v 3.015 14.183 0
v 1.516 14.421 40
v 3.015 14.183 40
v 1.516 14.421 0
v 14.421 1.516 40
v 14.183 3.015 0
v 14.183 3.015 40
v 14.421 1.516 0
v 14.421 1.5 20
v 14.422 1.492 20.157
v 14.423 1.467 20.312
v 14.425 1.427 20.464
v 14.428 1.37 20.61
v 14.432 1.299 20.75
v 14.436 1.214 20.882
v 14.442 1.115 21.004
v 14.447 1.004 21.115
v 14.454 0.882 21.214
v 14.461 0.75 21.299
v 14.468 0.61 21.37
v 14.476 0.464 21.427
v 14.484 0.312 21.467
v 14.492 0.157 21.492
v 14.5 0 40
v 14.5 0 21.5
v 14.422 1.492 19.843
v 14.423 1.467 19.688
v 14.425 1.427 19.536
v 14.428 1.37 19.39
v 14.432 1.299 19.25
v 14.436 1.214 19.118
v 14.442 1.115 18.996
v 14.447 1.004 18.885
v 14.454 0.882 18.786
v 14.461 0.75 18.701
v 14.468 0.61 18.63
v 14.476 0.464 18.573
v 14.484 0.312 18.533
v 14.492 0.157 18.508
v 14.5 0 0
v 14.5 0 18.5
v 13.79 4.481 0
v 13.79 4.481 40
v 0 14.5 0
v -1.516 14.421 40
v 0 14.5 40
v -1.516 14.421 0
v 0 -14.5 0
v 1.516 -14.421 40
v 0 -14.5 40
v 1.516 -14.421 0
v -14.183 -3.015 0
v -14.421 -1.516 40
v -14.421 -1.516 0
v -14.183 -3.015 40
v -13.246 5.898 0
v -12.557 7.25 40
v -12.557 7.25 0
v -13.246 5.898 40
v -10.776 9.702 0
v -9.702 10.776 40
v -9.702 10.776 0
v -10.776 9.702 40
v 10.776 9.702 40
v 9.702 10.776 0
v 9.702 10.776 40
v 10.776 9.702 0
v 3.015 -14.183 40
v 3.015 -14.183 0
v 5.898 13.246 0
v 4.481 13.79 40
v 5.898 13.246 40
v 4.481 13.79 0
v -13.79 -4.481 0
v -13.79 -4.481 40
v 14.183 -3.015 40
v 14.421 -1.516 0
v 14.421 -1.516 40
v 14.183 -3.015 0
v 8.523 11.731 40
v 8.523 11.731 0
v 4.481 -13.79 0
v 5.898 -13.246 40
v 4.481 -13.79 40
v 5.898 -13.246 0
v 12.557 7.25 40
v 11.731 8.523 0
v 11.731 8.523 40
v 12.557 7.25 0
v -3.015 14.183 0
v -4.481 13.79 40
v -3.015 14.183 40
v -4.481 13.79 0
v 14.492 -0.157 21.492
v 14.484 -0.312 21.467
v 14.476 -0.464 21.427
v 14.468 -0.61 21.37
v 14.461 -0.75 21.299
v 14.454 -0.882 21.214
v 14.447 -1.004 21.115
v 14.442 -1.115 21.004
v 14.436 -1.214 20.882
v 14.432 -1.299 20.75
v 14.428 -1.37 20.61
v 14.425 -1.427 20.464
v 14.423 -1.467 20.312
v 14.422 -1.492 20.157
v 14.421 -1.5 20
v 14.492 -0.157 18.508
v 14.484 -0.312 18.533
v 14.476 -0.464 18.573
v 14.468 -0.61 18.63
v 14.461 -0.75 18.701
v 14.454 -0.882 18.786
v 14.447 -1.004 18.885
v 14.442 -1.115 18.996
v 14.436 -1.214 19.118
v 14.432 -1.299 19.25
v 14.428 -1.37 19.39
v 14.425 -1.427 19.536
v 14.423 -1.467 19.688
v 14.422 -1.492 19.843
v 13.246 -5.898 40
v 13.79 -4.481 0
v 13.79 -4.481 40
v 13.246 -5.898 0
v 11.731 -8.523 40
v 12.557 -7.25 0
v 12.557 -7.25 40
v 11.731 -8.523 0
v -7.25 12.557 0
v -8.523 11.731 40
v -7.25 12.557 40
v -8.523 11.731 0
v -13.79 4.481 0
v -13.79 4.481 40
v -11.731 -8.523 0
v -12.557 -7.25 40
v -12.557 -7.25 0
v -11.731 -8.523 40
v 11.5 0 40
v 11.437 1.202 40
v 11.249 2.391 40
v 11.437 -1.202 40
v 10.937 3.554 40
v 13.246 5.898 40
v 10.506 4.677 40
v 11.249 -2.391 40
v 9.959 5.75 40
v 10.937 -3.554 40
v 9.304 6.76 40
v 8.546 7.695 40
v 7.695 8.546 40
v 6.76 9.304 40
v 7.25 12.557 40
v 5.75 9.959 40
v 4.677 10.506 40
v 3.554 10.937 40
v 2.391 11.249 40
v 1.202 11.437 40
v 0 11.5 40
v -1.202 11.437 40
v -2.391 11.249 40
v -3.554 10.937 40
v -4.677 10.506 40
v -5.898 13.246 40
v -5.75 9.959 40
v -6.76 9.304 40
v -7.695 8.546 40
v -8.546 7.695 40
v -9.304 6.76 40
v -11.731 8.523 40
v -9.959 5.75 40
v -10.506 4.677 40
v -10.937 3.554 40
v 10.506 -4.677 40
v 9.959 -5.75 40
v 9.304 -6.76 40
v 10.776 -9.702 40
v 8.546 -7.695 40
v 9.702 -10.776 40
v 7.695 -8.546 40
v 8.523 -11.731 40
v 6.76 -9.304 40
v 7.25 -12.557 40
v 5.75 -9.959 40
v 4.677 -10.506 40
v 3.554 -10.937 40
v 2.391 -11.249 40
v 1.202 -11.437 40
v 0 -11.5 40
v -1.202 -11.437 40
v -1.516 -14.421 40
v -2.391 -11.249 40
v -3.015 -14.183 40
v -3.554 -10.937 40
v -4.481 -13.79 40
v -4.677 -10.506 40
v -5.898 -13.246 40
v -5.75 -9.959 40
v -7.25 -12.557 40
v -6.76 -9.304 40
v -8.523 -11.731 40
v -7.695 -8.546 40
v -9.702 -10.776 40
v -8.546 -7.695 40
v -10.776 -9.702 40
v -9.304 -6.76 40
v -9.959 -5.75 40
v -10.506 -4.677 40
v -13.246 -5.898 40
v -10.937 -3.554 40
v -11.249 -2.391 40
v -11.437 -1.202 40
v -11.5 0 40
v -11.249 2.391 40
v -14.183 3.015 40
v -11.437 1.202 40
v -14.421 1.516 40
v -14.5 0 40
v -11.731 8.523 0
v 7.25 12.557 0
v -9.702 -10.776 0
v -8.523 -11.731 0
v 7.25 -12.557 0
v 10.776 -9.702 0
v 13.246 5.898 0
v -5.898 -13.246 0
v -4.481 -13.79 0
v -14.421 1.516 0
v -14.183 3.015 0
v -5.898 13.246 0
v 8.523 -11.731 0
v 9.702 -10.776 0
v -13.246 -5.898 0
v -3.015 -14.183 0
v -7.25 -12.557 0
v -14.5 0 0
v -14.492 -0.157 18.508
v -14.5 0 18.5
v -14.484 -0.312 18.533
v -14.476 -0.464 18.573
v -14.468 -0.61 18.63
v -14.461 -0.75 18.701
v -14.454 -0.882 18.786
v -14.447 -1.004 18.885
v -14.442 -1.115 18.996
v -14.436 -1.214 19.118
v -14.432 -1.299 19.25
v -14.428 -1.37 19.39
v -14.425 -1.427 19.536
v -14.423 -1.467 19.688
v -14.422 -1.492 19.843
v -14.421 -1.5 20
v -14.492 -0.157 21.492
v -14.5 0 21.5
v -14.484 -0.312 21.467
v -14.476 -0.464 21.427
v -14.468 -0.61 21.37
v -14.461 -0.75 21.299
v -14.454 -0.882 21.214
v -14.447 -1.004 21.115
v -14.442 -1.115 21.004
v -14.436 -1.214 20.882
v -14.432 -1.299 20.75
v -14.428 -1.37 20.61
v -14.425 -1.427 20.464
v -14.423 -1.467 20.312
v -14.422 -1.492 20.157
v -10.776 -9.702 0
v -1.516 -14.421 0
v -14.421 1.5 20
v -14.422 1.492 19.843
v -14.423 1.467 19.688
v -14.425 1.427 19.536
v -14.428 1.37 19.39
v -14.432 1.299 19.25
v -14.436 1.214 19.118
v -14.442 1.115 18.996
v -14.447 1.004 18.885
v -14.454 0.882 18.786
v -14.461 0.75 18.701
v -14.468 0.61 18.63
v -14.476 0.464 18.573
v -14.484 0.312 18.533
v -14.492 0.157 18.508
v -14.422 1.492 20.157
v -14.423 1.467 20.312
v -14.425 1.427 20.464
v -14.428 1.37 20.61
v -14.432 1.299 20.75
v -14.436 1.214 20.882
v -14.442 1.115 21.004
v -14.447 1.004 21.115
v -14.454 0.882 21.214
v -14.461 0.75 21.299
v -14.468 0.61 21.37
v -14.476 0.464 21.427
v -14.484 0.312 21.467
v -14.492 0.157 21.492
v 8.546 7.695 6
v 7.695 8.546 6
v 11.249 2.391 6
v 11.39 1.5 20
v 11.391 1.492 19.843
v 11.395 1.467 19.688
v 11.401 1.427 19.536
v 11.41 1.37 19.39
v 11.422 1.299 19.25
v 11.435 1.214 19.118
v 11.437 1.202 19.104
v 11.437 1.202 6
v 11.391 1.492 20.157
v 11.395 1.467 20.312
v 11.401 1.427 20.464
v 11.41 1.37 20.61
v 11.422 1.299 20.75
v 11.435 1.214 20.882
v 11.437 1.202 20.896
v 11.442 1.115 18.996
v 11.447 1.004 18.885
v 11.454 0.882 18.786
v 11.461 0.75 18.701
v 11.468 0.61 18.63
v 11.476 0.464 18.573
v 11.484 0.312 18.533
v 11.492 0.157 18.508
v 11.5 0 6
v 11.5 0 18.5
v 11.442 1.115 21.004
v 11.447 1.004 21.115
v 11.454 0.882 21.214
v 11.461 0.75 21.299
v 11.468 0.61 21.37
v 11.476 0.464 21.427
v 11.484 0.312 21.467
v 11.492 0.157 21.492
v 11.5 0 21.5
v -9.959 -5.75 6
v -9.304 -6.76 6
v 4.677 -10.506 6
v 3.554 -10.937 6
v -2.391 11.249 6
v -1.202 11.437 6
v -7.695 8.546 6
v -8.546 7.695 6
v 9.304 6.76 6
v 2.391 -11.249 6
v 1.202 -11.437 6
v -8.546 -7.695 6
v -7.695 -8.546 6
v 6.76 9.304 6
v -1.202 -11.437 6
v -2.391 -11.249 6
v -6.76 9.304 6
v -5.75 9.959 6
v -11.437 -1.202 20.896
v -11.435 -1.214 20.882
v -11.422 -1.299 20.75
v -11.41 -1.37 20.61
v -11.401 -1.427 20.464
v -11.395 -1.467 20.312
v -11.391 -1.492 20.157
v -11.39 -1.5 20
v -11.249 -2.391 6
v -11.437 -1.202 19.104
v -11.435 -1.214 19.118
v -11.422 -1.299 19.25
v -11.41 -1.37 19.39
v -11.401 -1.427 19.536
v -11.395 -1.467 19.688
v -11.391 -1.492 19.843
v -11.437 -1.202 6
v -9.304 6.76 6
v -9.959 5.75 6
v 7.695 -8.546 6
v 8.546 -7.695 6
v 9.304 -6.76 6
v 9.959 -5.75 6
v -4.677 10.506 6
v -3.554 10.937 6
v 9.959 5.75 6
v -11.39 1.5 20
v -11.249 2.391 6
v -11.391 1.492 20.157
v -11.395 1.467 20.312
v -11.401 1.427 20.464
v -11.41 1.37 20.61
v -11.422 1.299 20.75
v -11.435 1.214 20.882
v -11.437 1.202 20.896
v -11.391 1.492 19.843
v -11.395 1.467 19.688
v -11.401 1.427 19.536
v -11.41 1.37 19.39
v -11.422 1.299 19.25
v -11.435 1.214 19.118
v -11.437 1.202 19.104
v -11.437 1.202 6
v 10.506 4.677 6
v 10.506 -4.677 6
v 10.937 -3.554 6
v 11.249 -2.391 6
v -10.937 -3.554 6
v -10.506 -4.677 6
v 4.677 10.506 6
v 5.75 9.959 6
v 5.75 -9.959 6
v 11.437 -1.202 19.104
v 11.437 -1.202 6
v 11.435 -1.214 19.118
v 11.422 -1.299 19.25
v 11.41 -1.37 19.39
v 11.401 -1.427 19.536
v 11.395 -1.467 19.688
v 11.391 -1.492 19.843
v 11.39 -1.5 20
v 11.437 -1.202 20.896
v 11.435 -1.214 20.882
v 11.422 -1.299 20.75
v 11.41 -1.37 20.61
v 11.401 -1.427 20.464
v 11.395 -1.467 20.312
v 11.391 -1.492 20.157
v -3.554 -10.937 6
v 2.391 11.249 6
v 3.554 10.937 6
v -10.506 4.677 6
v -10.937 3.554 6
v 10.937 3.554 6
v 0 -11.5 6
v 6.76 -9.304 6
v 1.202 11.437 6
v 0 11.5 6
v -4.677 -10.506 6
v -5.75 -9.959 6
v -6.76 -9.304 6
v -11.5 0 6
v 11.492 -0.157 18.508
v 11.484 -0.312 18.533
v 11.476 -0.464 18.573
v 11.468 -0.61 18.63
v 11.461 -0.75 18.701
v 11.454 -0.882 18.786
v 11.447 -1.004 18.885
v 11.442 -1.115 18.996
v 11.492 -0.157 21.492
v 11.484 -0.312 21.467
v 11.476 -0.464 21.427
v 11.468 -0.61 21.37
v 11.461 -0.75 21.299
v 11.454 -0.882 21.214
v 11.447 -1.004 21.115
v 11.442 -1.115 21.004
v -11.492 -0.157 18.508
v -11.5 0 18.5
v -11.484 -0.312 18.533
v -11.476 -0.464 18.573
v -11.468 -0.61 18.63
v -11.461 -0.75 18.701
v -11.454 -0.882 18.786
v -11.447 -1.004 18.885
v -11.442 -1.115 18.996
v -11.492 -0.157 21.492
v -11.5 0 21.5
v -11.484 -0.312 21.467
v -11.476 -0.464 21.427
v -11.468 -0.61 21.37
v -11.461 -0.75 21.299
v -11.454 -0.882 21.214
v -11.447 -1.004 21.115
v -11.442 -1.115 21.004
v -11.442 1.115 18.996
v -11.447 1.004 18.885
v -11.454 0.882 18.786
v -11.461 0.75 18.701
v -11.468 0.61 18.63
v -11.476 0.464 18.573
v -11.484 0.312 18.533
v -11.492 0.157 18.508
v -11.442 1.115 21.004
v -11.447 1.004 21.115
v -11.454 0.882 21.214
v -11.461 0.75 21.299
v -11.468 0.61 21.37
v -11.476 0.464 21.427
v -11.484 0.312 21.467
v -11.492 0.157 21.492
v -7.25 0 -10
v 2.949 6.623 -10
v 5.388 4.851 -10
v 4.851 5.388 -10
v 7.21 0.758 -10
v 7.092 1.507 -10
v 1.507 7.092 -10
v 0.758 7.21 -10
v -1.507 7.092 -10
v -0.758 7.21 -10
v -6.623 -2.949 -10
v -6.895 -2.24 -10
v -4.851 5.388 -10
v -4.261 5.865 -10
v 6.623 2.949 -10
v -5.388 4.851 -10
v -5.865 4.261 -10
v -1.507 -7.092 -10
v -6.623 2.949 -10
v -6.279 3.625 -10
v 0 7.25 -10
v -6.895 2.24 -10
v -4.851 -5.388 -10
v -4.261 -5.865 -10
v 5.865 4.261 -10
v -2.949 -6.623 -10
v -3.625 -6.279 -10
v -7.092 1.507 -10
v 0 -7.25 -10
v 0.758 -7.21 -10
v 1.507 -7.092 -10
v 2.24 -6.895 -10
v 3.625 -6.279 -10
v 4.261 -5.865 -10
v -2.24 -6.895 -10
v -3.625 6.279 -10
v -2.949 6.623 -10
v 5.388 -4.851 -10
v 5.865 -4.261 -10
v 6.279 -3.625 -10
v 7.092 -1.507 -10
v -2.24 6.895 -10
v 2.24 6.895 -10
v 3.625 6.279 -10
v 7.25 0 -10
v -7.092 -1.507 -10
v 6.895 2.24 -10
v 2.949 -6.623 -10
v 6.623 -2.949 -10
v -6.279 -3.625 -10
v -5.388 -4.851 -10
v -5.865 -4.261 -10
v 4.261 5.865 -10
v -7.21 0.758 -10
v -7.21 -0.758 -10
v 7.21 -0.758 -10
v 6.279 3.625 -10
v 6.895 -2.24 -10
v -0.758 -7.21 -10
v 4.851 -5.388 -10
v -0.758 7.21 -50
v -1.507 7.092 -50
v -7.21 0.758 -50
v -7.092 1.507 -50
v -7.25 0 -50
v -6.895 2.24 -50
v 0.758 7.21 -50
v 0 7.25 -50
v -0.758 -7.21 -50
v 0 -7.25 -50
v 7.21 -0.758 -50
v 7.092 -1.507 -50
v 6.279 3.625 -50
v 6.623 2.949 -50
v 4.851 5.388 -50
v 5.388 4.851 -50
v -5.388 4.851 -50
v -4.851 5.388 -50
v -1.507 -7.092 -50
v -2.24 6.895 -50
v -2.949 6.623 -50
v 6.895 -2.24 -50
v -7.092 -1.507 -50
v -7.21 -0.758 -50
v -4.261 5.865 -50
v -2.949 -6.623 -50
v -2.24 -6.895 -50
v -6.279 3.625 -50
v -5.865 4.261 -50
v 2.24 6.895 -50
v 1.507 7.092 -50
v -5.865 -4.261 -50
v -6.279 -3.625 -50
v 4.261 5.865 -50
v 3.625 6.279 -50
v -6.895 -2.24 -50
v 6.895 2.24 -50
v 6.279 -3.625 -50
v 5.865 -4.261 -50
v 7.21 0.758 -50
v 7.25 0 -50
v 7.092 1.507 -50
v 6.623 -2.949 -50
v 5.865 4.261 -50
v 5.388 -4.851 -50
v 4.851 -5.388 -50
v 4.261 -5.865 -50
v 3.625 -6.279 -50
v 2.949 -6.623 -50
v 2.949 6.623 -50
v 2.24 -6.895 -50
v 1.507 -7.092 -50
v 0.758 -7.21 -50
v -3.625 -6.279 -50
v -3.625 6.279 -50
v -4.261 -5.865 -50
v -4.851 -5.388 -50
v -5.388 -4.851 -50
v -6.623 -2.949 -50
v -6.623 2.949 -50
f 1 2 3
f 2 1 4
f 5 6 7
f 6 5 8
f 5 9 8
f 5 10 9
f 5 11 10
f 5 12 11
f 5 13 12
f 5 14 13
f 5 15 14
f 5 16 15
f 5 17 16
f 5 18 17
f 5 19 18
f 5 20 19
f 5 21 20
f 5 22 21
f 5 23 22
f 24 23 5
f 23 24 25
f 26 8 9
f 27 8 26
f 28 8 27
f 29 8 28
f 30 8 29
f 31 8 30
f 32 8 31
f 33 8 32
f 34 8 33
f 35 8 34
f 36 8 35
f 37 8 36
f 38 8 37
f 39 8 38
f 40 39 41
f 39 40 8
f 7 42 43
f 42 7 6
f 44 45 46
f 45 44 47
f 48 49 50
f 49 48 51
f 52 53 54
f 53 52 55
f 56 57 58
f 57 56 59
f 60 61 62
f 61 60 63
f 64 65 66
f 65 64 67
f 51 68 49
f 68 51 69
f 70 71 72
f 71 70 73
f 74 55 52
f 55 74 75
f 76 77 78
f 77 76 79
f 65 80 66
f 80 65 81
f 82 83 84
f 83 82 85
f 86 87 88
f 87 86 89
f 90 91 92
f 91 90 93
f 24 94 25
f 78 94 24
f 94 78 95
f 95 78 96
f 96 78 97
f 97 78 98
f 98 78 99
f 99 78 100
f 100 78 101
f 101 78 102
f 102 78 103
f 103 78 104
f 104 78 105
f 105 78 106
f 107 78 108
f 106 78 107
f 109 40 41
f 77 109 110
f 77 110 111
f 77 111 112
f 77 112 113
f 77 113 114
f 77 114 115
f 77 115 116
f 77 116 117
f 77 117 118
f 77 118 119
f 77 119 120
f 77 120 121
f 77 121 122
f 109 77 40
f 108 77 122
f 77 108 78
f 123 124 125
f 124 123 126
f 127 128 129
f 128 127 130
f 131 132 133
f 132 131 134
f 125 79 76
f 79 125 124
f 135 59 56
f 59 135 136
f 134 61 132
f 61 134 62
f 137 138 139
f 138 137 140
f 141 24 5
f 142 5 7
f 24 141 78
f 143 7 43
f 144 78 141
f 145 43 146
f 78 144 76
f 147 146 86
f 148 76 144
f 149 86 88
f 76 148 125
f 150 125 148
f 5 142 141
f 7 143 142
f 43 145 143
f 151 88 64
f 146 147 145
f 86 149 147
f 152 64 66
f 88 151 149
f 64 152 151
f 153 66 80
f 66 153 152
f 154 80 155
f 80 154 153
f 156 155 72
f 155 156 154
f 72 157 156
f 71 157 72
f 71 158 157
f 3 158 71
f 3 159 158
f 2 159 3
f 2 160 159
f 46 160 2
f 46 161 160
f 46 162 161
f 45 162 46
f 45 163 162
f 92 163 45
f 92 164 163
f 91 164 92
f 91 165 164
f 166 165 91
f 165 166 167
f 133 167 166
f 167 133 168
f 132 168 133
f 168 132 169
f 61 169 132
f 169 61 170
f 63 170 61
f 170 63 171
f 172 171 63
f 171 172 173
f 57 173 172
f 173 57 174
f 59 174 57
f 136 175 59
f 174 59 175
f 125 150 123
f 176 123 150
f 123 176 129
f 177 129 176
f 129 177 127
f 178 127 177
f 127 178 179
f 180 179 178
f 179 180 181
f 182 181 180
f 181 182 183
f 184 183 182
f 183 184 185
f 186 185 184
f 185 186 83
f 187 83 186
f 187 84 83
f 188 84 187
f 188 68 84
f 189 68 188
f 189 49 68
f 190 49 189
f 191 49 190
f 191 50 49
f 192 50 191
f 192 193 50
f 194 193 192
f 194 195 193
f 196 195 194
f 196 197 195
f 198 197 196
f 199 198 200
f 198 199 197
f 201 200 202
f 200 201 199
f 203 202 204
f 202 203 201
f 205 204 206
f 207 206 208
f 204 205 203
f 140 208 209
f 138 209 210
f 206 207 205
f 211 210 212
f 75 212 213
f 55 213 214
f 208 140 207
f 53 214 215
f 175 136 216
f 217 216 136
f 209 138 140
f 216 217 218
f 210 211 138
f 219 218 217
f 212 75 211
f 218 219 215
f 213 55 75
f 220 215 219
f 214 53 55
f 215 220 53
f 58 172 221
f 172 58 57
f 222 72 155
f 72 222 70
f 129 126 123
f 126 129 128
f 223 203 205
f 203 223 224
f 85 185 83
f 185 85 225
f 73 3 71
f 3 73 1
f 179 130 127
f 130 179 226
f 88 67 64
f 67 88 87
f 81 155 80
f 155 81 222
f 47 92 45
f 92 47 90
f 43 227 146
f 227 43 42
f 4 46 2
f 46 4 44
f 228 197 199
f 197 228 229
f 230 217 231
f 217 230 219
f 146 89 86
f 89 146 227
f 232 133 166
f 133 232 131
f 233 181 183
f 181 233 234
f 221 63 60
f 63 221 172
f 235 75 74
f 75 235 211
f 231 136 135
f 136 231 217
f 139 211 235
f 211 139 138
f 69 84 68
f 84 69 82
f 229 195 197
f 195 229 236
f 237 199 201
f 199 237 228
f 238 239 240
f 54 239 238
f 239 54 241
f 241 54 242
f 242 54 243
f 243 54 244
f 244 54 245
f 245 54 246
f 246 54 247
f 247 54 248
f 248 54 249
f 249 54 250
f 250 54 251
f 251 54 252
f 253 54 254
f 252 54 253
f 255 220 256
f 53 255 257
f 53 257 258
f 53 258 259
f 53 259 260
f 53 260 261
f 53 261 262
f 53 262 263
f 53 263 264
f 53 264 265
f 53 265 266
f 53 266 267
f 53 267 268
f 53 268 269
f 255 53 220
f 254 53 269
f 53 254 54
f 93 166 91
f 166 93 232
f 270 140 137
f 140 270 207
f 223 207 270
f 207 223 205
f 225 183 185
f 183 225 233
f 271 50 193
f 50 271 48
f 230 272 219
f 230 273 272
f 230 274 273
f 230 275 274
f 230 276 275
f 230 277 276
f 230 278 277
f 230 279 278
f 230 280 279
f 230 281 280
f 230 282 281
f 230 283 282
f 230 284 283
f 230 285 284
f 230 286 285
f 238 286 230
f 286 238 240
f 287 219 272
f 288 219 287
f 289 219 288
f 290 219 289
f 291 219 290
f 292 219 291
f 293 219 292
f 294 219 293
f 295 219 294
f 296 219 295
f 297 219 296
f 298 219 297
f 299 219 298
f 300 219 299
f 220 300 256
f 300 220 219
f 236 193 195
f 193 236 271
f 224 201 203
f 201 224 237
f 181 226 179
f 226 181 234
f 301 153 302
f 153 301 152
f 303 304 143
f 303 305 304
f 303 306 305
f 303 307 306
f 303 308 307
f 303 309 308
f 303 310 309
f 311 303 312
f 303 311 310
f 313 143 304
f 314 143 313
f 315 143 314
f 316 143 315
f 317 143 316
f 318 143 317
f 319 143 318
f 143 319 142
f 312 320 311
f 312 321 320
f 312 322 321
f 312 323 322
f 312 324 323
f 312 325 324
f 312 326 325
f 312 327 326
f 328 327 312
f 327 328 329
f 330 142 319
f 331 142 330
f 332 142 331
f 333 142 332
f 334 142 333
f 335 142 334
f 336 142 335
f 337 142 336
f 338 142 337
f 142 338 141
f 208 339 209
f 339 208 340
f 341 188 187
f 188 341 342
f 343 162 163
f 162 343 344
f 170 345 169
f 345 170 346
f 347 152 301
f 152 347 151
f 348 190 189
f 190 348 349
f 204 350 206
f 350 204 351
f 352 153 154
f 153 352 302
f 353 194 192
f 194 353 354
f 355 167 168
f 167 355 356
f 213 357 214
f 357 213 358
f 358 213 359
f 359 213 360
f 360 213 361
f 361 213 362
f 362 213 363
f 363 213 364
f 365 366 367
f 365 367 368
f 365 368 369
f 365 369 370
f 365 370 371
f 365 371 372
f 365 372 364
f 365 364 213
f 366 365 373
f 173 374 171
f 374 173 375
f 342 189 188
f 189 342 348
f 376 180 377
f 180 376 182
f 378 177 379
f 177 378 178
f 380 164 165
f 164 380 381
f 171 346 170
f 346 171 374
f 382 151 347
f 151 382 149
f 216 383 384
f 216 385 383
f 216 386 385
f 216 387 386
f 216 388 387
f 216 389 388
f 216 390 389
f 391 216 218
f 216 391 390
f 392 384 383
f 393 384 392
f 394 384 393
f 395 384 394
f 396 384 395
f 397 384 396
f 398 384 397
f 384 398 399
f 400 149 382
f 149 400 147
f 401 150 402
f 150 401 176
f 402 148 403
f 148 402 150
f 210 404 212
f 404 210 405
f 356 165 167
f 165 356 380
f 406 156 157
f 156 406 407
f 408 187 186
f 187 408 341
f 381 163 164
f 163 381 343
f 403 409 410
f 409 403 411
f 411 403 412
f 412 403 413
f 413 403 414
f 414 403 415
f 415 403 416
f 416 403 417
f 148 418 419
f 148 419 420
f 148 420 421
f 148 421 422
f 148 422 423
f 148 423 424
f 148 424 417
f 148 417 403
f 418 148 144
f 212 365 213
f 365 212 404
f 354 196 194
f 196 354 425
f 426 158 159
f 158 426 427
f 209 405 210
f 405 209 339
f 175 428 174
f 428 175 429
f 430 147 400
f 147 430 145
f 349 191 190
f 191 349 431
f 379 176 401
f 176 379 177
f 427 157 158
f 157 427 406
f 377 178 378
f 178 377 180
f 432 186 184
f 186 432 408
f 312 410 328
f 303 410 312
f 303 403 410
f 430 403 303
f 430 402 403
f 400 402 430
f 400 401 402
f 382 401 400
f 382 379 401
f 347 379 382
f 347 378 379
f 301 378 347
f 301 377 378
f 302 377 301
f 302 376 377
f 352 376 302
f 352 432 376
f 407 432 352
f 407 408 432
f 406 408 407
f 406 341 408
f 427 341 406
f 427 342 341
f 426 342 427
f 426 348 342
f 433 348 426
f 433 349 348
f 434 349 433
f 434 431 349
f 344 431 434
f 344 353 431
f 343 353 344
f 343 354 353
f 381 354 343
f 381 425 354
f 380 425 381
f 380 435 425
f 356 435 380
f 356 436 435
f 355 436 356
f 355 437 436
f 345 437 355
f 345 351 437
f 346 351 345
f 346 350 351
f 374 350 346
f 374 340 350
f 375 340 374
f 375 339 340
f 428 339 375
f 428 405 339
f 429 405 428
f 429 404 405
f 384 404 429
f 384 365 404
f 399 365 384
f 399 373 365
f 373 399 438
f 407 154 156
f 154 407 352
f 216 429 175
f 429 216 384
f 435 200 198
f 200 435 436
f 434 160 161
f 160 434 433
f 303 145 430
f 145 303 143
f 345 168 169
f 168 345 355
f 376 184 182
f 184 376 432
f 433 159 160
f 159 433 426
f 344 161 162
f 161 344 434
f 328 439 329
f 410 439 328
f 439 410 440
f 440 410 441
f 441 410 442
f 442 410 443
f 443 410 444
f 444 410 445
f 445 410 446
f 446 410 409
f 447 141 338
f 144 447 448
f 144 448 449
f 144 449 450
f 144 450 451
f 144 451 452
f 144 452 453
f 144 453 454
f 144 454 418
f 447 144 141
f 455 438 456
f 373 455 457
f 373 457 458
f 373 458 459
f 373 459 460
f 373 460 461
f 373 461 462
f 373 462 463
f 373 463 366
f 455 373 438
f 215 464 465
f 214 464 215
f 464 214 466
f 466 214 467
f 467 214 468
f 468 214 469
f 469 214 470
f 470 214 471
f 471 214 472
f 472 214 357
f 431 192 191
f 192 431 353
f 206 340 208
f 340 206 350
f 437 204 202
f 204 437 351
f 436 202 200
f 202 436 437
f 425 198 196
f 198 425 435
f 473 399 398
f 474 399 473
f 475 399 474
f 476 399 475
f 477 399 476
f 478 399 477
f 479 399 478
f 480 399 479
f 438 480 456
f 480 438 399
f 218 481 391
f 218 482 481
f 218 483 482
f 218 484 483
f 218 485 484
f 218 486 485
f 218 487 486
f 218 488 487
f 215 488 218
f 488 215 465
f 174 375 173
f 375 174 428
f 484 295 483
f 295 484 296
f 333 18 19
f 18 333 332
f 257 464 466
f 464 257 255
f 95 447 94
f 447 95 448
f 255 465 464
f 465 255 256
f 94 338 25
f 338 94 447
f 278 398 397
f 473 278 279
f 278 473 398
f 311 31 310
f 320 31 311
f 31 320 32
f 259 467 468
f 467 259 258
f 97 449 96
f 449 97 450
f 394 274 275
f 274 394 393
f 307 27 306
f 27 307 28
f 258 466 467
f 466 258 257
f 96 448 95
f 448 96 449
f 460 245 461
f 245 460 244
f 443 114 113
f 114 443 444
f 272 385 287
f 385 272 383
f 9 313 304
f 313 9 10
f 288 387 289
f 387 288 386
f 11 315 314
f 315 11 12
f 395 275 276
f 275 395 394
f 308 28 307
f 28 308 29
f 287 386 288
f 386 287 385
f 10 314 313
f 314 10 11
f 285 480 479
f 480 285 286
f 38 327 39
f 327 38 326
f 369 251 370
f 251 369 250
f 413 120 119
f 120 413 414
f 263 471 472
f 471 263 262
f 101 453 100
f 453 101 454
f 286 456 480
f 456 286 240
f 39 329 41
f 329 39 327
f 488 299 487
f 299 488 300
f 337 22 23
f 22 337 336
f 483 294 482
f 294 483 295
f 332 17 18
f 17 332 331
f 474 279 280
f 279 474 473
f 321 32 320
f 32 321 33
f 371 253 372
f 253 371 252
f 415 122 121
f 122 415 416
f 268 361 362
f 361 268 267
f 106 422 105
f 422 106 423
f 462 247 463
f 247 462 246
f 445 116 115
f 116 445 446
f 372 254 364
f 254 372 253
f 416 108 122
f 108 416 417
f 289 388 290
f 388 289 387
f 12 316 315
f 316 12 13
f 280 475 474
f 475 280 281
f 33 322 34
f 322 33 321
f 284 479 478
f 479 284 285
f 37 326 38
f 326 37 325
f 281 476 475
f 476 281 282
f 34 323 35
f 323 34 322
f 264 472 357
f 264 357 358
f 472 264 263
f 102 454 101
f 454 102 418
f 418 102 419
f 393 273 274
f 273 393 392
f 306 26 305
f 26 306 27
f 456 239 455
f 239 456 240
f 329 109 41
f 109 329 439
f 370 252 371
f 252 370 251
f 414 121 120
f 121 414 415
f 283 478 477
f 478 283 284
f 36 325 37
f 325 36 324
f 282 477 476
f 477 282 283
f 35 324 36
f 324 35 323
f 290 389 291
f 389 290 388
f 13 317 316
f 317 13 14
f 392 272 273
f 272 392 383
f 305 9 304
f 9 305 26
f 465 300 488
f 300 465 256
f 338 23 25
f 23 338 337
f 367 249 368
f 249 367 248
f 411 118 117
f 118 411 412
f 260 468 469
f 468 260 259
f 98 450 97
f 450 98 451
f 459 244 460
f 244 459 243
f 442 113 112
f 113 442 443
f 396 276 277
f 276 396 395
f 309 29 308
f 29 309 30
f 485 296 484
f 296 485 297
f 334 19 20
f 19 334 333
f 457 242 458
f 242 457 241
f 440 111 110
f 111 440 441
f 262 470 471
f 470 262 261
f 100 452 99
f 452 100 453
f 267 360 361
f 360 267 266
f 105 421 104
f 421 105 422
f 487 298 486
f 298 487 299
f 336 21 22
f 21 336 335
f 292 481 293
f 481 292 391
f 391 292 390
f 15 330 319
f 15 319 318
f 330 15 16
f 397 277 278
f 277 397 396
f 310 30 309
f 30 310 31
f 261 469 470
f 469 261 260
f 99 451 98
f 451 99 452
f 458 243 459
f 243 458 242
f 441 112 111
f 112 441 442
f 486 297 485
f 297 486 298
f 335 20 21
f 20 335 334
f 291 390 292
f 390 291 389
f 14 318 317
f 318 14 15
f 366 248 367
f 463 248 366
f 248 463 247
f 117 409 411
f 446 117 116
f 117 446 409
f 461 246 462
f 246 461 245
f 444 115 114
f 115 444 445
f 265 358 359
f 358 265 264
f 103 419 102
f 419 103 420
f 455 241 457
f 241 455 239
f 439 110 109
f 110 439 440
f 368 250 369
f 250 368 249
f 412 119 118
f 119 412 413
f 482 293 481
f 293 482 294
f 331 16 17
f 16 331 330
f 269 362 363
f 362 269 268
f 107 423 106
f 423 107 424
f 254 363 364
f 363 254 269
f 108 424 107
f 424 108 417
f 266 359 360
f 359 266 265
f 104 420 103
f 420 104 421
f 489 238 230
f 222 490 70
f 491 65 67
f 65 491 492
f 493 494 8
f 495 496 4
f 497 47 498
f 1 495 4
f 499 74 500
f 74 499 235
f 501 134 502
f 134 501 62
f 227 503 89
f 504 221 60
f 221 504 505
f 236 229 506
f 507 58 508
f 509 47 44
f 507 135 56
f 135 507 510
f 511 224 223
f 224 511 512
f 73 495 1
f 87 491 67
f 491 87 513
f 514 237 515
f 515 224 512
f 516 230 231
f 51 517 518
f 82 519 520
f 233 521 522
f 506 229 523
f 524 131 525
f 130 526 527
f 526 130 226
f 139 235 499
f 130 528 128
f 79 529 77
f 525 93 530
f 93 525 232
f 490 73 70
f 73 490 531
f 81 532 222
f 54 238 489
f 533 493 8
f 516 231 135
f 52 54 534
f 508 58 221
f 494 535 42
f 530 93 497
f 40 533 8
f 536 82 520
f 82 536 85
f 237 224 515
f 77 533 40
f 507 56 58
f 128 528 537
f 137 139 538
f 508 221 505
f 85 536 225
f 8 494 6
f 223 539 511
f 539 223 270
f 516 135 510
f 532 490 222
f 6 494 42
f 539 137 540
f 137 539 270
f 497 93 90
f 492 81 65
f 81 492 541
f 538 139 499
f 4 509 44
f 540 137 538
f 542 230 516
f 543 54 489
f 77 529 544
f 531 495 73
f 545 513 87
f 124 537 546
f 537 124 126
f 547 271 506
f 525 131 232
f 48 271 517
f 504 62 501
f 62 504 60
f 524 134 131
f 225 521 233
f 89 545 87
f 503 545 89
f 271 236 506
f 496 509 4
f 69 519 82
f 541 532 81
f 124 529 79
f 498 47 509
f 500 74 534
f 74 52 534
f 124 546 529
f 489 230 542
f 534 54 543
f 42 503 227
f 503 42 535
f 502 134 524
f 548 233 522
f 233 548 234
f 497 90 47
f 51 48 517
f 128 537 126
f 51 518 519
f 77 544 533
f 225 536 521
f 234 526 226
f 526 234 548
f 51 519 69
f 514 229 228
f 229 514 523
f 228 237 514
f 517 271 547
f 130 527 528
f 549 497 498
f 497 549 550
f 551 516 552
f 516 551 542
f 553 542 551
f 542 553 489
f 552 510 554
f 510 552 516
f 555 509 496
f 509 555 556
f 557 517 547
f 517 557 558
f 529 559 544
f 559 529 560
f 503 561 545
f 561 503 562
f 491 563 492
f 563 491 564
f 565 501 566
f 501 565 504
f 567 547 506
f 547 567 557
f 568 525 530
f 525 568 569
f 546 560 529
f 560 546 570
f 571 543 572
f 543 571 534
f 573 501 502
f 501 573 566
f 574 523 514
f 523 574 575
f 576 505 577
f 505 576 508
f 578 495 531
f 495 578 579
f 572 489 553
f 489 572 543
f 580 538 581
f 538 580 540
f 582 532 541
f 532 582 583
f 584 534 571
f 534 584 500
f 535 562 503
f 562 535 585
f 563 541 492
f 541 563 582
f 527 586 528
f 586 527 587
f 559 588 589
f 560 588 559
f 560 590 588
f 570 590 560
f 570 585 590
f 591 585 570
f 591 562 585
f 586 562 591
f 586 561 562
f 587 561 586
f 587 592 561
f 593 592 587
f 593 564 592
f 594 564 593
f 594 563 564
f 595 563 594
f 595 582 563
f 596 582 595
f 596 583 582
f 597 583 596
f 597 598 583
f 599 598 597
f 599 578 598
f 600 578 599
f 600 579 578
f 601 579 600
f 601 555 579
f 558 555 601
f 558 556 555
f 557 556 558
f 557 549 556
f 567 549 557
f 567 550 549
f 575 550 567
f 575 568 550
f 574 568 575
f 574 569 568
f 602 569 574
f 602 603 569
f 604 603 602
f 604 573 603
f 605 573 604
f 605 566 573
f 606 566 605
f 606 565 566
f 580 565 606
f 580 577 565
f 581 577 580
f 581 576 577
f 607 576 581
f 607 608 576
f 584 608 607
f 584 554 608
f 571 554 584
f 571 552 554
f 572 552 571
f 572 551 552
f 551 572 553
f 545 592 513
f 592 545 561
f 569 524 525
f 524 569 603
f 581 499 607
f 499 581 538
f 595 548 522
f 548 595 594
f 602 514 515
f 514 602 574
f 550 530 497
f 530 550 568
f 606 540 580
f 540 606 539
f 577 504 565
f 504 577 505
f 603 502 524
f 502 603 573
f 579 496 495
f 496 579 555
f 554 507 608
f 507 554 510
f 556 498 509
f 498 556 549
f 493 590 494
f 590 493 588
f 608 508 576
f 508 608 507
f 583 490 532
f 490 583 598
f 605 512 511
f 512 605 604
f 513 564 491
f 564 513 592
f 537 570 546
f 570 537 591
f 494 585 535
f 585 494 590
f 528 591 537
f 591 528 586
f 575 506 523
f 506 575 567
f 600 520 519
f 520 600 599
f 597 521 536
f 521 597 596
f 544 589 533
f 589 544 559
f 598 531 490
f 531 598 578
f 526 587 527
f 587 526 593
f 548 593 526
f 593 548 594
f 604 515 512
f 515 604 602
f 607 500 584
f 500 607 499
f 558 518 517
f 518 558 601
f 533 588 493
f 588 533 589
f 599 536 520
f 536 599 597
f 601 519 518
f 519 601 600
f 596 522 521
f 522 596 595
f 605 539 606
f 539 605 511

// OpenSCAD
BroomHandleAdapter(23, 14.5, 80, 6);

$fn=60;

module BroomHandleAdapter(female_diameter, male_diameter, length, thickness) {
    connector_height = 10;
    FemaleHalf(female_diameter, length / 2, thickness, 3);
    rotate([0, 180, 0]) {
        Connector(female_diameter + thickness, male_diameter, connector_height);
        translate([0, 0, connector_height]) { 
            MaleHalf(male_diameter, length / 2);
        } 
    }         
}

module FemaleHalf(diameter, length, thickness, hole_diameter) {
    difference() {
        difference() {
            cylinder(d = diameter + thickness, h = length);
            translate([0, 0, thickness]) {
                cylinder(d = diameter, h = length);
            }
        }
        translate([-diameter/2 - 5, 0, length / 2]) rotate([0, 90, 0]) cylinder(d = hole_diameter, h = diameter + 10);
    }   
}

module MaleHalf(diameter, length) {
    cylinder(d = diameter, h = length);
}

module Connector(from_diameter, to_diameter, height) {
    cylinder(h = height, d1 = from_diameter, d2 = to_diameter);
}
